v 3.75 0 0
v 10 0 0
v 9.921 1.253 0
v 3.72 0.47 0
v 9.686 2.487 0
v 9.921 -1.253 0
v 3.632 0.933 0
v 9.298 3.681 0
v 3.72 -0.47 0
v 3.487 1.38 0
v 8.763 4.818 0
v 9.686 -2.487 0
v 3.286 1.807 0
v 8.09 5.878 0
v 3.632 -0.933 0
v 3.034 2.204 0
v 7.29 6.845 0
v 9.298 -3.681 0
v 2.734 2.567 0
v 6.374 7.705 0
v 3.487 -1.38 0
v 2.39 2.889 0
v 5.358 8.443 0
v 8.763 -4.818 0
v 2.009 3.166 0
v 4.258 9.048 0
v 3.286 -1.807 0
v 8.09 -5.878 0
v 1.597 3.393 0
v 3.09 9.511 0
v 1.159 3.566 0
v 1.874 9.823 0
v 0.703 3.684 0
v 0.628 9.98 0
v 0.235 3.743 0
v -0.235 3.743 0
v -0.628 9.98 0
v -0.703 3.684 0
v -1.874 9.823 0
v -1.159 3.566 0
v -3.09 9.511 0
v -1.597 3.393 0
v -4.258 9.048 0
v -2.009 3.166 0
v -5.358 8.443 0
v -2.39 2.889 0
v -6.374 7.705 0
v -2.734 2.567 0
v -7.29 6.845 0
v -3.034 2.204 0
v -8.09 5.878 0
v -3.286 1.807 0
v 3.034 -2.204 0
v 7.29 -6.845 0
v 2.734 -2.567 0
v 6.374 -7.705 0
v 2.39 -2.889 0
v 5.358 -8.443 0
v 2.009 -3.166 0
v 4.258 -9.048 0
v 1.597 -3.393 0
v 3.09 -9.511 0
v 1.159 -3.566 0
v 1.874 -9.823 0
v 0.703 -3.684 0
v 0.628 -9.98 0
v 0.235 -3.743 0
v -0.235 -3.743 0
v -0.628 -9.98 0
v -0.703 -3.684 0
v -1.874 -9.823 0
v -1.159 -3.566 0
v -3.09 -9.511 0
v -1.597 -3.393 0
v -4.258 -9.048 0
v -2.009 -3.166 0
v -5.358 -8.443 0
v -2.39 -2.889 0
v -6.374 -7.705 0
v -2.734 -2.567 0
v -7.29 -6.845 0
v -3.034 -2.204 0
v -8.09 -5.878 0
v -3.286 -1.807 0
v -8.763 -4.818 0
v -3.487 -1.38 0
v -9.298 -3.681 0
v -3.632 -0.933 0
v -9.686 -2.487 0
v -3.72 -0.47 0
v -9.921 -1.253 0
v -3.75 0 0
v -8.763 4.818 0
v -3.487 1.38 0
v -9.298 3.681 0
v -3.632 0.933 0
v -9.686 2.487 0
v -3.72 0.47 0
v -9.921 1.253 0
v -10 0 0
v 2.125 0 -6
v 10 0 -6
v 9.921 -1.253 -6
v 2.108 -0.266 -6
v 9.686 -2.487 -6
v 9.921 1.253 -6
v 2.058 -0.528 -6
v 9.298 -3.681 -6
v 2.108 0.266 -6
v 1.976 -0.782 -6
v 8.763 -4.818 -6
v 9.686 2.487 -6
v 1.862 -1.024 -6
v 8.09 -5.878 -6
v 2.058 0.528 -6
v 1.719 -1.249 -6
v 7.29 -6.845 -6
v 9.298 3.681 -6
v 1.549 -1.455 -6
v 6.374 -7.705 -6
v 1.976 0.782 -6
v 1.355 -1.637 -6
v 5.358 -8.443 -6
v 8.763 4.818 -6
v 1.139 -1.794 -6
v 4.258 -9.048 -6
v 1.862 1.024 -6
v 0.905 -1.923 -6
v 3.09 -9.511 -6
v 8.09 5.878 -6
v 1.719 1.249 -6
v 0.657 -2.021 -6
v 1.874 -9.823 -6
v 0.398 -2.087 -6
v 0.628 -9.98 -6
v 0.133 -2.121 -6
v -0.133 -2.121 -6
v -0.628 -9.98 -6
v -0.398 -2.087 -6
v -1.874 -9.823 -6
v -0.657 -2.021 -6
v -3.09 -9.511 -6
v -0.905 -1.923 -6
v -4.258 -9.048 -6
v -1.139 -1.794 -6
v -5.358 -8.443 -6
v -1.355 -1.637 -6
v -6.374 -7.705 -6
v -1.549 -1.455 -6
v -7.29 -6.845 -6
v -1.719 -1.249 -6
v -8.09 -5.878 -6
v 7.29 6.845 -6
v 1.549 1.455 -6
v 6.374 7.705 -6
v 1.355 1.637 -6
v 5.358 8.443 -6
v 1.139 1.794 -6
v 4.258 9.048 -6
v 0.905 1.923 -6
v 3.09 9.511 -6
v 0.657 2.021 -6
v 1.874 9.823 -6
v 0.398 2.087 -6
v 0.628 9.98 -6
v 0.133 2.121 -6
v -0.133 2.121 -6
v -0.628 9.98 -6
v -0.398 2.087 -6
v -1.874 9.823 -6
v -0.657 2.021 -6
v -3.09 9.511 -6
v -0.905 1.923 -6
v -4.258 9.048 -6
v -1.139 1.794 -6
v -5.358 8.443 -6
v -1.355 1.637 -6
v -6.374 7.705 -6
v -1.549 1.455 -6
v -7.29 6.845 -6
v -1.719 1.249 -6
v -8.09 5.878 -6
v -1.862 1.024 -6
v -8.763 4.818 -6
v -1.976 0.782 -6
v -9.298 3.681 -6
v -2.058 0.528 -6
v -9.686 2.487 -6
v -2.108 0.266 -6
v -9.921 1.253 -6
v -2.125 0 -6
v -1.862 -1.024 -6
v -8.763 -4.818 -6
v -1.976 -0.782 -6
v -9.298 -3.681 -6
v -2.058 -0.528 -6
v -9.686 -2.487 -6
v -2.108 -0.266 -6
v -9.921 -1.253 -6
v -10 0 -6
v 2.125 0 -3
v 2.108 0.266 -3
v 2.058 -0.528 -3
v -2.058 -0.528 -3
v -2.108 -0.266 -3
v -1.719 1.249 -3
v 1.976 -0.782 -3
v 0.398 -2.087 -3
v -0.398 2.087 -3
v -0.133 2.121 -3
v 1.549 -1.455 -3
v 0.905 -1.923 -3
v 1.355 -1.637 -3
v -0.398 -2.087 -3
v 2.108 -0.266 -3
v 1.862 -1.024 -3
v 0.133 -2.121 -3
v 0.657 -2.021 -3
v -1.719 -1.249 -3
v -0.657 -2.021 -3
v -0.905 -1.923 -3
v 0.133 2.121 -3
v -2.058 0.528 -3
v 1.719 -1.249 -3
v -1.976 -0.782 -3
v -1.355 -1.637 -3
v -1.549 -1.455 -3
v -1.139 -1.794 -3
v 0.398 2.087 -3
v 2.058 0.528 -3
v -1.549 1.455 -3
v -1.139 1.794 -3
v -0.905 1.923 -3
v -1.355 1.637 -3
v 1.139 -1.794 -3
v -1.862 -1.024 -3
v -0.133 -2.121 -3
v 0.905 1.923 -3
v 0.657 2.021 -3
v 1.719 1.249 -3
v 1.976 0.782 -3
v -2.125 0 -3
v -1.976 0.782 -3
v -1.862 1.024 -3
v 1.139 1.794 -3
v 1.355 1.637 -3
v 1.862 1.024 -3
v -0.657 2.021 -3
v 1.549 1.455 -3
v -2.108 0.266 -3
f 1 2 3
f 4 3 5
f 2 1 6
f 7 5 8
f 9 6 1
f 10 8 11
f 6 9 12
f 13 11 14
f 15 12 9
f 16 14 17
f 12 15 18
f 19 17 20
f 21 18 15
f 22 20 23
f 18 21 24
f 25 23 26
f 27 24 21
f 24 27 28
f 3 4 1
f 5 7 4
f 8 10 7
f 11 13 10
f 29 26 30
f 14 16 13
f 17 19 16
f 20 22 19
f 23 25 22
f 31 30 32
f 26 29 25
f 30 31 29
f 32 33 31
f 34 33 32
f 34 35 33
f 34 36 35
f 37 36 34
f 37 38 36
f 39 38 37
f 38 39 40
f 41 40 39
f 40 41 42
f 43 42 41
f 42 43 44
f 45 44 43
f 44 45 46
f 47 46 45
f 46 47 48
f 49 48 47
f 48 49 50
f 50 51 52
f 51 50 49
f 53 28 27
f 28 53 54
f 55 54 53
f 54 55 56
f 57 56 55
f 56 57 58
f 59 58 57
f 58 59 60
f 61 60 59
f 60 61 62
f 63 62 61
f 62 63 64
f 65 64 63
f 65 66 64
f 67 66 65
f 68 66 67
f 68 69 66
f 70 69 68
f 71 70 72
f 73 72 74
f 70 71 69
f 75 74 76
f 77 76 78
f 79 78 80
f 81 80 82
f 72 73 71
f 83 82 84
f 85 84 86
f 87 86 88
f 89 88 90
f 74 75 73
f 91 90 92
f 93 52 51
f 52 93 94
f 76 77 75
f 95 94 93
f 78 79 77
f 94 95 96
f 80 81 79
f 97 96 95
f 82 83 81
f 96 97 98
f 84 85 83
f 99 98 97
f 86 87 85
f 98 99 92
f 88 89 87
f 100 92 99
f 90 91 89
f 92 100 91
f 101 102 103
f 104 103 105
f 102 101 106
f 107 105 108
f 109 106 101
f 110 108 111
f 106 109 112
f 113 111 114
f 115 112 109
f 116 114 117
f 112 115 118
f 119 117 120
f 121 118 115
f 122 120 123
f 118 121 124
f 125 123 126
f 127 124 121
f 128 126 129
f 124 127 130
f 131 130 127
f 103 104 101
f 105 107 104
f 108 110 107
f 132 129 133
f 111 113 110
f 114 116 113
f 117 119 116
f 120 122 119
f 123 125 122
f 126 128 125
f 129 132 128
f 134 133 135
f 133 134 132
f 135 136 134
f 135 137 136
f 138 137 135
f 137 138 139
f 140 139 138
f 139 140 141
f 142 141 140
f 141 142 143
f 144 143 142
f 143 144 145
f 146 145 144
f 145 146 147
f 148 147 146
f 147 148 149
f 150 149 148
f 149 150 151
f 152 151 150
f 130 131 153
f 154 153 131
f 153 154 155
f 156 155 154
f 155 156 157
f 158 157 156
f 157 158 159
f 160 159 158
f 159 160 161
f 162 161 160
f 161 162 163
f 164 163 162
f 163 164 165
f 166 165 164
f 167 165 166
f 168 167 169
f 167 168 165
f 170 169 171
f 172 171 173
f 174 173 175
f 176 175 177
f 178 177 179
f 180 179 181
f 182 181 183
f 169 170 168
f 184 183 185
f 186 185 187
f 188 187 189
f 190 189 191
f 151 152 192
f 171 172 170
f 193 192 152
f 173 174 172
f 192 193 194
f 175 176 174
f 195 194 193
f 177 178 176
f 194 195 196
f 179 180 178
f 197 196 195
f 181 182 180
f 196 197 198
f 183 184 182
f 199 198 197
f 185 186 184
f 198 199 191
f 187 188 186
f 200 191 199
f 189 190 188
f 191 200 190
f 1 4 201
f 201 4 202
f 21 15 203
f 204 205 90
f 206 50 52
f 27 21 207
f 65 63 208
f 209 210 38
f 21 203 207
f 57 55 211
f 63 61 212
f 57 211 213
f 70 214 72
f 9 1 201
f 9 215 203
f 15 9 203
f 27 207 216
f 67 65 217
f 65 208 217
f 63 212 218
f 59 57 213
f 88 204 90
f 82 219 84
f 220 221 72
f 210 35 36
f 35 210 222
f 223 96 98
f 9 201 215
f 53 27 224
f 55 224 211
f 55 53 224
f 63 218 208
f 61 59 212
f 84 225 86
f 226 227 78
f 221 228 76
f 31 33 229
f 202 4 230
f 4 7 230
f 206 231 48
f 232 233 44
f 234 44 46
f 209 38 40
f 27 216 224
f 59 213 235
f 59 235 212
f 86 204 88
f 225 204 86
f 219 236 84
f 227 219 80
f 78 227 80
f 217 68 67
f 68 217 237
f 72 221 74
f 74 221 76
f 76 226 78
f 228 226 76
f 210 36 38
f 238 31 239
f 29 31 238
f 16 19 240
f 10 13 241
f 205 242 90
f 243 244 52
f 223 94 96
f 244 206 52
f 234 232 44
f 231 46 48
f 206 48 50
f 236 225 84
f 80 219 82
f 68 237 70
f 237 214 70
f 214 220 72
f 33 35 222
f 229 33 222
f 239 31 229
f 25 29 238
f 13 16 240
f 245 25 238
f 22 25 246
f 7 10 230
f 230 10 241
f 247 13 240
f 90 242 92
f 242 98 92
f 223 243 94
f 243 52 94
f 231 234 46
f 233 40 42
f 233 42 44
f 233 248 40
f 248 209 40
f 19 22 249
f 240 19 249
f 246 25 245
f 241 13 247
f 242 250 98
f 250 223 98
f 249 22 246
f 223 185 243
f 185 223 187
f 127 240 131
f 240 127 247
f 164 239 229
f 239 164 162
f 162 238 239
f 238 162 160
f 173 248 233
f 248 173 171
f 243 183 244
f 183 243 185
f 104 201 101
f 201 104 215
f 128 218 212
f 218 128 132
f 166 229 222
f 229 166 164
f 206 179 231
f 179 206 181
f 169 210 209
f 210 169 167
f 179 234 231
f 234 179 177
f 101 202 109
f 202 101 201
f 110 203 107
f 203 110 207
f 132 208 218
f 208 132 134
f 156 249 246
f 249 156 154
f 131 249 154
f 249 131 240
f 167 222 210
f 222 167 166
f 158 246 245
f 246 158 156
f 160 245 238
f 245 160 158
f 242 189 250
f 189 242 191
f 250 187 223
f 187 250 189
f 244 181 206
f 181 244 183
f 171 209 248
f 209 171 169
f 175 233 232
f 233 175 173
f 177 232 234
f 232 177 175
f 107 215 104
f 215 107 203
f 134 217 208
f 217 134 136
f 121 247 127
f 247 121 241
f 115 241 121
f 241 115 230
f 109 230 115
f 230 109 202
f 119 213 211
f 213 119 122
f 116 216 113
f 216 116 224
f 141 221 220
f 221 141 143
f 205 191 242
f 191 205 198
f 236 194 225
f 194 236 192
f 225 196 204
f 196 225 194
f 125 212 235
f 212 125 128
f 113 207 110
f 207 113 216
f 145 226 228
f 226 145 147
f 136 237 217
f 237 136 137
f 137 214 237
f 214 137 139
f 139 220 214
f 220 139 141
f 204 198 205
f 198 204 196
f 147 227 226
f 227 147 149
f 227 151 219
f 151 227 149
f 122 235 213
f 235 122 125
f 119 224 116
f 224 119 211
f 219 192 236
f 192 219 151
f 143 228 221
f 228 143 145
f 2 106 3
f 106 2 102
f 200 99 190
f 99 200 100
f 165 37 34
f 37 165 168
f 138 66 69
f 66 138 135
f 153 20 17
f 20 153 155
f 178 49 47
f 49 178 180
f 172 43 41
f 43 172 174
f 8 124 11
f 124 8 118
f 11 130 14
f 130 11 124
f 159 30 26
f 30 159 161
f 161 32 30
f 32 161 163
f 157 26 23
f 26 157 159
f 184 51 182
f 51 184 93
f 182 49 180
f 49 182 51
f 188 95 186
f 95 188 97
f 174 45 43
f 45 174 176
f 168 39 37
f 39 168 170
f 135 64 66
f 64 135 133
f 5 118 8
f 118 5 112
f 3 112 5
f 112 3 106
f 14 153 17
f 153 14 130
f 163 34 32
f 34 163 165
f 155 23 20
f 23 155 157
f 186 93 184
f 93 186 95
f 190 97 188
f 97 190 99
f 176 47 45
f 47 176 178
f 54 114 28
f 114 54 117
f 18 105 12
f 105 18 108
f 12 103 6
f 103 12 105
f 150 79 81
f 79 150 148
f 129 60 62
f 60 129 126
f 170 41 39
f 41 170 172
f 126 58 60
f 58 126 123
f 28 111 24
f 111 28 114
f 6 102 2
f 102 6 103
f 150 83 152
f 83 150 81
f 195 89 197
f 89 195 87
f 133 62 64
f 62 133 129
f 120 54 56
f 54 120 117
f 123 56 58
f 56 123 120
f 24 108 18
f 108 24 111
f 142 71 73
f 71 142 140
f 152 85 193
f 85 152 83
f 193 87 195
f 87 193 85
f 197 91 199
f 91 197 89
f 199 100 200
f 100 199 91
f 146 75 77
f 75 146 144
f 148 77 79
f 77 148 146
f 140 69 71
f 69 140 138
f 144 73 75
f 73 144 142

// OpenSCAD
$fn = 50;


difference() {
	union() {
		translate(v = [0, 0, -6.0000000000]) {
			cylinder(h = 6, r = 10.0000000000);
		}
	}
	union() {
		translate(v = [0, 0, 0]) {
			rotate(a = [0, 0, 0]) {
				difference() {
					union() {
						#translate(v = [0, 0, -6.0000000000]) {
							cylinder(h = 6, r = 2.0000000000);
						}
						#translate(v = [0, 0, -3]) {
							cylinder(h = 3, r1 = 2.1250000000, r2 = 3.7500000000);
						}
						#translate(v = [0, 0, -6.0000000000]) {
							cylinder(h = 6, r = 2.1250000000);
						}
						#translate(v = [0, 0, -6.0000000000]) {
							cylinder(h = 6, r = 2.0000000000);
						}
					}
					union();
				}
			}
		}
	}
}
